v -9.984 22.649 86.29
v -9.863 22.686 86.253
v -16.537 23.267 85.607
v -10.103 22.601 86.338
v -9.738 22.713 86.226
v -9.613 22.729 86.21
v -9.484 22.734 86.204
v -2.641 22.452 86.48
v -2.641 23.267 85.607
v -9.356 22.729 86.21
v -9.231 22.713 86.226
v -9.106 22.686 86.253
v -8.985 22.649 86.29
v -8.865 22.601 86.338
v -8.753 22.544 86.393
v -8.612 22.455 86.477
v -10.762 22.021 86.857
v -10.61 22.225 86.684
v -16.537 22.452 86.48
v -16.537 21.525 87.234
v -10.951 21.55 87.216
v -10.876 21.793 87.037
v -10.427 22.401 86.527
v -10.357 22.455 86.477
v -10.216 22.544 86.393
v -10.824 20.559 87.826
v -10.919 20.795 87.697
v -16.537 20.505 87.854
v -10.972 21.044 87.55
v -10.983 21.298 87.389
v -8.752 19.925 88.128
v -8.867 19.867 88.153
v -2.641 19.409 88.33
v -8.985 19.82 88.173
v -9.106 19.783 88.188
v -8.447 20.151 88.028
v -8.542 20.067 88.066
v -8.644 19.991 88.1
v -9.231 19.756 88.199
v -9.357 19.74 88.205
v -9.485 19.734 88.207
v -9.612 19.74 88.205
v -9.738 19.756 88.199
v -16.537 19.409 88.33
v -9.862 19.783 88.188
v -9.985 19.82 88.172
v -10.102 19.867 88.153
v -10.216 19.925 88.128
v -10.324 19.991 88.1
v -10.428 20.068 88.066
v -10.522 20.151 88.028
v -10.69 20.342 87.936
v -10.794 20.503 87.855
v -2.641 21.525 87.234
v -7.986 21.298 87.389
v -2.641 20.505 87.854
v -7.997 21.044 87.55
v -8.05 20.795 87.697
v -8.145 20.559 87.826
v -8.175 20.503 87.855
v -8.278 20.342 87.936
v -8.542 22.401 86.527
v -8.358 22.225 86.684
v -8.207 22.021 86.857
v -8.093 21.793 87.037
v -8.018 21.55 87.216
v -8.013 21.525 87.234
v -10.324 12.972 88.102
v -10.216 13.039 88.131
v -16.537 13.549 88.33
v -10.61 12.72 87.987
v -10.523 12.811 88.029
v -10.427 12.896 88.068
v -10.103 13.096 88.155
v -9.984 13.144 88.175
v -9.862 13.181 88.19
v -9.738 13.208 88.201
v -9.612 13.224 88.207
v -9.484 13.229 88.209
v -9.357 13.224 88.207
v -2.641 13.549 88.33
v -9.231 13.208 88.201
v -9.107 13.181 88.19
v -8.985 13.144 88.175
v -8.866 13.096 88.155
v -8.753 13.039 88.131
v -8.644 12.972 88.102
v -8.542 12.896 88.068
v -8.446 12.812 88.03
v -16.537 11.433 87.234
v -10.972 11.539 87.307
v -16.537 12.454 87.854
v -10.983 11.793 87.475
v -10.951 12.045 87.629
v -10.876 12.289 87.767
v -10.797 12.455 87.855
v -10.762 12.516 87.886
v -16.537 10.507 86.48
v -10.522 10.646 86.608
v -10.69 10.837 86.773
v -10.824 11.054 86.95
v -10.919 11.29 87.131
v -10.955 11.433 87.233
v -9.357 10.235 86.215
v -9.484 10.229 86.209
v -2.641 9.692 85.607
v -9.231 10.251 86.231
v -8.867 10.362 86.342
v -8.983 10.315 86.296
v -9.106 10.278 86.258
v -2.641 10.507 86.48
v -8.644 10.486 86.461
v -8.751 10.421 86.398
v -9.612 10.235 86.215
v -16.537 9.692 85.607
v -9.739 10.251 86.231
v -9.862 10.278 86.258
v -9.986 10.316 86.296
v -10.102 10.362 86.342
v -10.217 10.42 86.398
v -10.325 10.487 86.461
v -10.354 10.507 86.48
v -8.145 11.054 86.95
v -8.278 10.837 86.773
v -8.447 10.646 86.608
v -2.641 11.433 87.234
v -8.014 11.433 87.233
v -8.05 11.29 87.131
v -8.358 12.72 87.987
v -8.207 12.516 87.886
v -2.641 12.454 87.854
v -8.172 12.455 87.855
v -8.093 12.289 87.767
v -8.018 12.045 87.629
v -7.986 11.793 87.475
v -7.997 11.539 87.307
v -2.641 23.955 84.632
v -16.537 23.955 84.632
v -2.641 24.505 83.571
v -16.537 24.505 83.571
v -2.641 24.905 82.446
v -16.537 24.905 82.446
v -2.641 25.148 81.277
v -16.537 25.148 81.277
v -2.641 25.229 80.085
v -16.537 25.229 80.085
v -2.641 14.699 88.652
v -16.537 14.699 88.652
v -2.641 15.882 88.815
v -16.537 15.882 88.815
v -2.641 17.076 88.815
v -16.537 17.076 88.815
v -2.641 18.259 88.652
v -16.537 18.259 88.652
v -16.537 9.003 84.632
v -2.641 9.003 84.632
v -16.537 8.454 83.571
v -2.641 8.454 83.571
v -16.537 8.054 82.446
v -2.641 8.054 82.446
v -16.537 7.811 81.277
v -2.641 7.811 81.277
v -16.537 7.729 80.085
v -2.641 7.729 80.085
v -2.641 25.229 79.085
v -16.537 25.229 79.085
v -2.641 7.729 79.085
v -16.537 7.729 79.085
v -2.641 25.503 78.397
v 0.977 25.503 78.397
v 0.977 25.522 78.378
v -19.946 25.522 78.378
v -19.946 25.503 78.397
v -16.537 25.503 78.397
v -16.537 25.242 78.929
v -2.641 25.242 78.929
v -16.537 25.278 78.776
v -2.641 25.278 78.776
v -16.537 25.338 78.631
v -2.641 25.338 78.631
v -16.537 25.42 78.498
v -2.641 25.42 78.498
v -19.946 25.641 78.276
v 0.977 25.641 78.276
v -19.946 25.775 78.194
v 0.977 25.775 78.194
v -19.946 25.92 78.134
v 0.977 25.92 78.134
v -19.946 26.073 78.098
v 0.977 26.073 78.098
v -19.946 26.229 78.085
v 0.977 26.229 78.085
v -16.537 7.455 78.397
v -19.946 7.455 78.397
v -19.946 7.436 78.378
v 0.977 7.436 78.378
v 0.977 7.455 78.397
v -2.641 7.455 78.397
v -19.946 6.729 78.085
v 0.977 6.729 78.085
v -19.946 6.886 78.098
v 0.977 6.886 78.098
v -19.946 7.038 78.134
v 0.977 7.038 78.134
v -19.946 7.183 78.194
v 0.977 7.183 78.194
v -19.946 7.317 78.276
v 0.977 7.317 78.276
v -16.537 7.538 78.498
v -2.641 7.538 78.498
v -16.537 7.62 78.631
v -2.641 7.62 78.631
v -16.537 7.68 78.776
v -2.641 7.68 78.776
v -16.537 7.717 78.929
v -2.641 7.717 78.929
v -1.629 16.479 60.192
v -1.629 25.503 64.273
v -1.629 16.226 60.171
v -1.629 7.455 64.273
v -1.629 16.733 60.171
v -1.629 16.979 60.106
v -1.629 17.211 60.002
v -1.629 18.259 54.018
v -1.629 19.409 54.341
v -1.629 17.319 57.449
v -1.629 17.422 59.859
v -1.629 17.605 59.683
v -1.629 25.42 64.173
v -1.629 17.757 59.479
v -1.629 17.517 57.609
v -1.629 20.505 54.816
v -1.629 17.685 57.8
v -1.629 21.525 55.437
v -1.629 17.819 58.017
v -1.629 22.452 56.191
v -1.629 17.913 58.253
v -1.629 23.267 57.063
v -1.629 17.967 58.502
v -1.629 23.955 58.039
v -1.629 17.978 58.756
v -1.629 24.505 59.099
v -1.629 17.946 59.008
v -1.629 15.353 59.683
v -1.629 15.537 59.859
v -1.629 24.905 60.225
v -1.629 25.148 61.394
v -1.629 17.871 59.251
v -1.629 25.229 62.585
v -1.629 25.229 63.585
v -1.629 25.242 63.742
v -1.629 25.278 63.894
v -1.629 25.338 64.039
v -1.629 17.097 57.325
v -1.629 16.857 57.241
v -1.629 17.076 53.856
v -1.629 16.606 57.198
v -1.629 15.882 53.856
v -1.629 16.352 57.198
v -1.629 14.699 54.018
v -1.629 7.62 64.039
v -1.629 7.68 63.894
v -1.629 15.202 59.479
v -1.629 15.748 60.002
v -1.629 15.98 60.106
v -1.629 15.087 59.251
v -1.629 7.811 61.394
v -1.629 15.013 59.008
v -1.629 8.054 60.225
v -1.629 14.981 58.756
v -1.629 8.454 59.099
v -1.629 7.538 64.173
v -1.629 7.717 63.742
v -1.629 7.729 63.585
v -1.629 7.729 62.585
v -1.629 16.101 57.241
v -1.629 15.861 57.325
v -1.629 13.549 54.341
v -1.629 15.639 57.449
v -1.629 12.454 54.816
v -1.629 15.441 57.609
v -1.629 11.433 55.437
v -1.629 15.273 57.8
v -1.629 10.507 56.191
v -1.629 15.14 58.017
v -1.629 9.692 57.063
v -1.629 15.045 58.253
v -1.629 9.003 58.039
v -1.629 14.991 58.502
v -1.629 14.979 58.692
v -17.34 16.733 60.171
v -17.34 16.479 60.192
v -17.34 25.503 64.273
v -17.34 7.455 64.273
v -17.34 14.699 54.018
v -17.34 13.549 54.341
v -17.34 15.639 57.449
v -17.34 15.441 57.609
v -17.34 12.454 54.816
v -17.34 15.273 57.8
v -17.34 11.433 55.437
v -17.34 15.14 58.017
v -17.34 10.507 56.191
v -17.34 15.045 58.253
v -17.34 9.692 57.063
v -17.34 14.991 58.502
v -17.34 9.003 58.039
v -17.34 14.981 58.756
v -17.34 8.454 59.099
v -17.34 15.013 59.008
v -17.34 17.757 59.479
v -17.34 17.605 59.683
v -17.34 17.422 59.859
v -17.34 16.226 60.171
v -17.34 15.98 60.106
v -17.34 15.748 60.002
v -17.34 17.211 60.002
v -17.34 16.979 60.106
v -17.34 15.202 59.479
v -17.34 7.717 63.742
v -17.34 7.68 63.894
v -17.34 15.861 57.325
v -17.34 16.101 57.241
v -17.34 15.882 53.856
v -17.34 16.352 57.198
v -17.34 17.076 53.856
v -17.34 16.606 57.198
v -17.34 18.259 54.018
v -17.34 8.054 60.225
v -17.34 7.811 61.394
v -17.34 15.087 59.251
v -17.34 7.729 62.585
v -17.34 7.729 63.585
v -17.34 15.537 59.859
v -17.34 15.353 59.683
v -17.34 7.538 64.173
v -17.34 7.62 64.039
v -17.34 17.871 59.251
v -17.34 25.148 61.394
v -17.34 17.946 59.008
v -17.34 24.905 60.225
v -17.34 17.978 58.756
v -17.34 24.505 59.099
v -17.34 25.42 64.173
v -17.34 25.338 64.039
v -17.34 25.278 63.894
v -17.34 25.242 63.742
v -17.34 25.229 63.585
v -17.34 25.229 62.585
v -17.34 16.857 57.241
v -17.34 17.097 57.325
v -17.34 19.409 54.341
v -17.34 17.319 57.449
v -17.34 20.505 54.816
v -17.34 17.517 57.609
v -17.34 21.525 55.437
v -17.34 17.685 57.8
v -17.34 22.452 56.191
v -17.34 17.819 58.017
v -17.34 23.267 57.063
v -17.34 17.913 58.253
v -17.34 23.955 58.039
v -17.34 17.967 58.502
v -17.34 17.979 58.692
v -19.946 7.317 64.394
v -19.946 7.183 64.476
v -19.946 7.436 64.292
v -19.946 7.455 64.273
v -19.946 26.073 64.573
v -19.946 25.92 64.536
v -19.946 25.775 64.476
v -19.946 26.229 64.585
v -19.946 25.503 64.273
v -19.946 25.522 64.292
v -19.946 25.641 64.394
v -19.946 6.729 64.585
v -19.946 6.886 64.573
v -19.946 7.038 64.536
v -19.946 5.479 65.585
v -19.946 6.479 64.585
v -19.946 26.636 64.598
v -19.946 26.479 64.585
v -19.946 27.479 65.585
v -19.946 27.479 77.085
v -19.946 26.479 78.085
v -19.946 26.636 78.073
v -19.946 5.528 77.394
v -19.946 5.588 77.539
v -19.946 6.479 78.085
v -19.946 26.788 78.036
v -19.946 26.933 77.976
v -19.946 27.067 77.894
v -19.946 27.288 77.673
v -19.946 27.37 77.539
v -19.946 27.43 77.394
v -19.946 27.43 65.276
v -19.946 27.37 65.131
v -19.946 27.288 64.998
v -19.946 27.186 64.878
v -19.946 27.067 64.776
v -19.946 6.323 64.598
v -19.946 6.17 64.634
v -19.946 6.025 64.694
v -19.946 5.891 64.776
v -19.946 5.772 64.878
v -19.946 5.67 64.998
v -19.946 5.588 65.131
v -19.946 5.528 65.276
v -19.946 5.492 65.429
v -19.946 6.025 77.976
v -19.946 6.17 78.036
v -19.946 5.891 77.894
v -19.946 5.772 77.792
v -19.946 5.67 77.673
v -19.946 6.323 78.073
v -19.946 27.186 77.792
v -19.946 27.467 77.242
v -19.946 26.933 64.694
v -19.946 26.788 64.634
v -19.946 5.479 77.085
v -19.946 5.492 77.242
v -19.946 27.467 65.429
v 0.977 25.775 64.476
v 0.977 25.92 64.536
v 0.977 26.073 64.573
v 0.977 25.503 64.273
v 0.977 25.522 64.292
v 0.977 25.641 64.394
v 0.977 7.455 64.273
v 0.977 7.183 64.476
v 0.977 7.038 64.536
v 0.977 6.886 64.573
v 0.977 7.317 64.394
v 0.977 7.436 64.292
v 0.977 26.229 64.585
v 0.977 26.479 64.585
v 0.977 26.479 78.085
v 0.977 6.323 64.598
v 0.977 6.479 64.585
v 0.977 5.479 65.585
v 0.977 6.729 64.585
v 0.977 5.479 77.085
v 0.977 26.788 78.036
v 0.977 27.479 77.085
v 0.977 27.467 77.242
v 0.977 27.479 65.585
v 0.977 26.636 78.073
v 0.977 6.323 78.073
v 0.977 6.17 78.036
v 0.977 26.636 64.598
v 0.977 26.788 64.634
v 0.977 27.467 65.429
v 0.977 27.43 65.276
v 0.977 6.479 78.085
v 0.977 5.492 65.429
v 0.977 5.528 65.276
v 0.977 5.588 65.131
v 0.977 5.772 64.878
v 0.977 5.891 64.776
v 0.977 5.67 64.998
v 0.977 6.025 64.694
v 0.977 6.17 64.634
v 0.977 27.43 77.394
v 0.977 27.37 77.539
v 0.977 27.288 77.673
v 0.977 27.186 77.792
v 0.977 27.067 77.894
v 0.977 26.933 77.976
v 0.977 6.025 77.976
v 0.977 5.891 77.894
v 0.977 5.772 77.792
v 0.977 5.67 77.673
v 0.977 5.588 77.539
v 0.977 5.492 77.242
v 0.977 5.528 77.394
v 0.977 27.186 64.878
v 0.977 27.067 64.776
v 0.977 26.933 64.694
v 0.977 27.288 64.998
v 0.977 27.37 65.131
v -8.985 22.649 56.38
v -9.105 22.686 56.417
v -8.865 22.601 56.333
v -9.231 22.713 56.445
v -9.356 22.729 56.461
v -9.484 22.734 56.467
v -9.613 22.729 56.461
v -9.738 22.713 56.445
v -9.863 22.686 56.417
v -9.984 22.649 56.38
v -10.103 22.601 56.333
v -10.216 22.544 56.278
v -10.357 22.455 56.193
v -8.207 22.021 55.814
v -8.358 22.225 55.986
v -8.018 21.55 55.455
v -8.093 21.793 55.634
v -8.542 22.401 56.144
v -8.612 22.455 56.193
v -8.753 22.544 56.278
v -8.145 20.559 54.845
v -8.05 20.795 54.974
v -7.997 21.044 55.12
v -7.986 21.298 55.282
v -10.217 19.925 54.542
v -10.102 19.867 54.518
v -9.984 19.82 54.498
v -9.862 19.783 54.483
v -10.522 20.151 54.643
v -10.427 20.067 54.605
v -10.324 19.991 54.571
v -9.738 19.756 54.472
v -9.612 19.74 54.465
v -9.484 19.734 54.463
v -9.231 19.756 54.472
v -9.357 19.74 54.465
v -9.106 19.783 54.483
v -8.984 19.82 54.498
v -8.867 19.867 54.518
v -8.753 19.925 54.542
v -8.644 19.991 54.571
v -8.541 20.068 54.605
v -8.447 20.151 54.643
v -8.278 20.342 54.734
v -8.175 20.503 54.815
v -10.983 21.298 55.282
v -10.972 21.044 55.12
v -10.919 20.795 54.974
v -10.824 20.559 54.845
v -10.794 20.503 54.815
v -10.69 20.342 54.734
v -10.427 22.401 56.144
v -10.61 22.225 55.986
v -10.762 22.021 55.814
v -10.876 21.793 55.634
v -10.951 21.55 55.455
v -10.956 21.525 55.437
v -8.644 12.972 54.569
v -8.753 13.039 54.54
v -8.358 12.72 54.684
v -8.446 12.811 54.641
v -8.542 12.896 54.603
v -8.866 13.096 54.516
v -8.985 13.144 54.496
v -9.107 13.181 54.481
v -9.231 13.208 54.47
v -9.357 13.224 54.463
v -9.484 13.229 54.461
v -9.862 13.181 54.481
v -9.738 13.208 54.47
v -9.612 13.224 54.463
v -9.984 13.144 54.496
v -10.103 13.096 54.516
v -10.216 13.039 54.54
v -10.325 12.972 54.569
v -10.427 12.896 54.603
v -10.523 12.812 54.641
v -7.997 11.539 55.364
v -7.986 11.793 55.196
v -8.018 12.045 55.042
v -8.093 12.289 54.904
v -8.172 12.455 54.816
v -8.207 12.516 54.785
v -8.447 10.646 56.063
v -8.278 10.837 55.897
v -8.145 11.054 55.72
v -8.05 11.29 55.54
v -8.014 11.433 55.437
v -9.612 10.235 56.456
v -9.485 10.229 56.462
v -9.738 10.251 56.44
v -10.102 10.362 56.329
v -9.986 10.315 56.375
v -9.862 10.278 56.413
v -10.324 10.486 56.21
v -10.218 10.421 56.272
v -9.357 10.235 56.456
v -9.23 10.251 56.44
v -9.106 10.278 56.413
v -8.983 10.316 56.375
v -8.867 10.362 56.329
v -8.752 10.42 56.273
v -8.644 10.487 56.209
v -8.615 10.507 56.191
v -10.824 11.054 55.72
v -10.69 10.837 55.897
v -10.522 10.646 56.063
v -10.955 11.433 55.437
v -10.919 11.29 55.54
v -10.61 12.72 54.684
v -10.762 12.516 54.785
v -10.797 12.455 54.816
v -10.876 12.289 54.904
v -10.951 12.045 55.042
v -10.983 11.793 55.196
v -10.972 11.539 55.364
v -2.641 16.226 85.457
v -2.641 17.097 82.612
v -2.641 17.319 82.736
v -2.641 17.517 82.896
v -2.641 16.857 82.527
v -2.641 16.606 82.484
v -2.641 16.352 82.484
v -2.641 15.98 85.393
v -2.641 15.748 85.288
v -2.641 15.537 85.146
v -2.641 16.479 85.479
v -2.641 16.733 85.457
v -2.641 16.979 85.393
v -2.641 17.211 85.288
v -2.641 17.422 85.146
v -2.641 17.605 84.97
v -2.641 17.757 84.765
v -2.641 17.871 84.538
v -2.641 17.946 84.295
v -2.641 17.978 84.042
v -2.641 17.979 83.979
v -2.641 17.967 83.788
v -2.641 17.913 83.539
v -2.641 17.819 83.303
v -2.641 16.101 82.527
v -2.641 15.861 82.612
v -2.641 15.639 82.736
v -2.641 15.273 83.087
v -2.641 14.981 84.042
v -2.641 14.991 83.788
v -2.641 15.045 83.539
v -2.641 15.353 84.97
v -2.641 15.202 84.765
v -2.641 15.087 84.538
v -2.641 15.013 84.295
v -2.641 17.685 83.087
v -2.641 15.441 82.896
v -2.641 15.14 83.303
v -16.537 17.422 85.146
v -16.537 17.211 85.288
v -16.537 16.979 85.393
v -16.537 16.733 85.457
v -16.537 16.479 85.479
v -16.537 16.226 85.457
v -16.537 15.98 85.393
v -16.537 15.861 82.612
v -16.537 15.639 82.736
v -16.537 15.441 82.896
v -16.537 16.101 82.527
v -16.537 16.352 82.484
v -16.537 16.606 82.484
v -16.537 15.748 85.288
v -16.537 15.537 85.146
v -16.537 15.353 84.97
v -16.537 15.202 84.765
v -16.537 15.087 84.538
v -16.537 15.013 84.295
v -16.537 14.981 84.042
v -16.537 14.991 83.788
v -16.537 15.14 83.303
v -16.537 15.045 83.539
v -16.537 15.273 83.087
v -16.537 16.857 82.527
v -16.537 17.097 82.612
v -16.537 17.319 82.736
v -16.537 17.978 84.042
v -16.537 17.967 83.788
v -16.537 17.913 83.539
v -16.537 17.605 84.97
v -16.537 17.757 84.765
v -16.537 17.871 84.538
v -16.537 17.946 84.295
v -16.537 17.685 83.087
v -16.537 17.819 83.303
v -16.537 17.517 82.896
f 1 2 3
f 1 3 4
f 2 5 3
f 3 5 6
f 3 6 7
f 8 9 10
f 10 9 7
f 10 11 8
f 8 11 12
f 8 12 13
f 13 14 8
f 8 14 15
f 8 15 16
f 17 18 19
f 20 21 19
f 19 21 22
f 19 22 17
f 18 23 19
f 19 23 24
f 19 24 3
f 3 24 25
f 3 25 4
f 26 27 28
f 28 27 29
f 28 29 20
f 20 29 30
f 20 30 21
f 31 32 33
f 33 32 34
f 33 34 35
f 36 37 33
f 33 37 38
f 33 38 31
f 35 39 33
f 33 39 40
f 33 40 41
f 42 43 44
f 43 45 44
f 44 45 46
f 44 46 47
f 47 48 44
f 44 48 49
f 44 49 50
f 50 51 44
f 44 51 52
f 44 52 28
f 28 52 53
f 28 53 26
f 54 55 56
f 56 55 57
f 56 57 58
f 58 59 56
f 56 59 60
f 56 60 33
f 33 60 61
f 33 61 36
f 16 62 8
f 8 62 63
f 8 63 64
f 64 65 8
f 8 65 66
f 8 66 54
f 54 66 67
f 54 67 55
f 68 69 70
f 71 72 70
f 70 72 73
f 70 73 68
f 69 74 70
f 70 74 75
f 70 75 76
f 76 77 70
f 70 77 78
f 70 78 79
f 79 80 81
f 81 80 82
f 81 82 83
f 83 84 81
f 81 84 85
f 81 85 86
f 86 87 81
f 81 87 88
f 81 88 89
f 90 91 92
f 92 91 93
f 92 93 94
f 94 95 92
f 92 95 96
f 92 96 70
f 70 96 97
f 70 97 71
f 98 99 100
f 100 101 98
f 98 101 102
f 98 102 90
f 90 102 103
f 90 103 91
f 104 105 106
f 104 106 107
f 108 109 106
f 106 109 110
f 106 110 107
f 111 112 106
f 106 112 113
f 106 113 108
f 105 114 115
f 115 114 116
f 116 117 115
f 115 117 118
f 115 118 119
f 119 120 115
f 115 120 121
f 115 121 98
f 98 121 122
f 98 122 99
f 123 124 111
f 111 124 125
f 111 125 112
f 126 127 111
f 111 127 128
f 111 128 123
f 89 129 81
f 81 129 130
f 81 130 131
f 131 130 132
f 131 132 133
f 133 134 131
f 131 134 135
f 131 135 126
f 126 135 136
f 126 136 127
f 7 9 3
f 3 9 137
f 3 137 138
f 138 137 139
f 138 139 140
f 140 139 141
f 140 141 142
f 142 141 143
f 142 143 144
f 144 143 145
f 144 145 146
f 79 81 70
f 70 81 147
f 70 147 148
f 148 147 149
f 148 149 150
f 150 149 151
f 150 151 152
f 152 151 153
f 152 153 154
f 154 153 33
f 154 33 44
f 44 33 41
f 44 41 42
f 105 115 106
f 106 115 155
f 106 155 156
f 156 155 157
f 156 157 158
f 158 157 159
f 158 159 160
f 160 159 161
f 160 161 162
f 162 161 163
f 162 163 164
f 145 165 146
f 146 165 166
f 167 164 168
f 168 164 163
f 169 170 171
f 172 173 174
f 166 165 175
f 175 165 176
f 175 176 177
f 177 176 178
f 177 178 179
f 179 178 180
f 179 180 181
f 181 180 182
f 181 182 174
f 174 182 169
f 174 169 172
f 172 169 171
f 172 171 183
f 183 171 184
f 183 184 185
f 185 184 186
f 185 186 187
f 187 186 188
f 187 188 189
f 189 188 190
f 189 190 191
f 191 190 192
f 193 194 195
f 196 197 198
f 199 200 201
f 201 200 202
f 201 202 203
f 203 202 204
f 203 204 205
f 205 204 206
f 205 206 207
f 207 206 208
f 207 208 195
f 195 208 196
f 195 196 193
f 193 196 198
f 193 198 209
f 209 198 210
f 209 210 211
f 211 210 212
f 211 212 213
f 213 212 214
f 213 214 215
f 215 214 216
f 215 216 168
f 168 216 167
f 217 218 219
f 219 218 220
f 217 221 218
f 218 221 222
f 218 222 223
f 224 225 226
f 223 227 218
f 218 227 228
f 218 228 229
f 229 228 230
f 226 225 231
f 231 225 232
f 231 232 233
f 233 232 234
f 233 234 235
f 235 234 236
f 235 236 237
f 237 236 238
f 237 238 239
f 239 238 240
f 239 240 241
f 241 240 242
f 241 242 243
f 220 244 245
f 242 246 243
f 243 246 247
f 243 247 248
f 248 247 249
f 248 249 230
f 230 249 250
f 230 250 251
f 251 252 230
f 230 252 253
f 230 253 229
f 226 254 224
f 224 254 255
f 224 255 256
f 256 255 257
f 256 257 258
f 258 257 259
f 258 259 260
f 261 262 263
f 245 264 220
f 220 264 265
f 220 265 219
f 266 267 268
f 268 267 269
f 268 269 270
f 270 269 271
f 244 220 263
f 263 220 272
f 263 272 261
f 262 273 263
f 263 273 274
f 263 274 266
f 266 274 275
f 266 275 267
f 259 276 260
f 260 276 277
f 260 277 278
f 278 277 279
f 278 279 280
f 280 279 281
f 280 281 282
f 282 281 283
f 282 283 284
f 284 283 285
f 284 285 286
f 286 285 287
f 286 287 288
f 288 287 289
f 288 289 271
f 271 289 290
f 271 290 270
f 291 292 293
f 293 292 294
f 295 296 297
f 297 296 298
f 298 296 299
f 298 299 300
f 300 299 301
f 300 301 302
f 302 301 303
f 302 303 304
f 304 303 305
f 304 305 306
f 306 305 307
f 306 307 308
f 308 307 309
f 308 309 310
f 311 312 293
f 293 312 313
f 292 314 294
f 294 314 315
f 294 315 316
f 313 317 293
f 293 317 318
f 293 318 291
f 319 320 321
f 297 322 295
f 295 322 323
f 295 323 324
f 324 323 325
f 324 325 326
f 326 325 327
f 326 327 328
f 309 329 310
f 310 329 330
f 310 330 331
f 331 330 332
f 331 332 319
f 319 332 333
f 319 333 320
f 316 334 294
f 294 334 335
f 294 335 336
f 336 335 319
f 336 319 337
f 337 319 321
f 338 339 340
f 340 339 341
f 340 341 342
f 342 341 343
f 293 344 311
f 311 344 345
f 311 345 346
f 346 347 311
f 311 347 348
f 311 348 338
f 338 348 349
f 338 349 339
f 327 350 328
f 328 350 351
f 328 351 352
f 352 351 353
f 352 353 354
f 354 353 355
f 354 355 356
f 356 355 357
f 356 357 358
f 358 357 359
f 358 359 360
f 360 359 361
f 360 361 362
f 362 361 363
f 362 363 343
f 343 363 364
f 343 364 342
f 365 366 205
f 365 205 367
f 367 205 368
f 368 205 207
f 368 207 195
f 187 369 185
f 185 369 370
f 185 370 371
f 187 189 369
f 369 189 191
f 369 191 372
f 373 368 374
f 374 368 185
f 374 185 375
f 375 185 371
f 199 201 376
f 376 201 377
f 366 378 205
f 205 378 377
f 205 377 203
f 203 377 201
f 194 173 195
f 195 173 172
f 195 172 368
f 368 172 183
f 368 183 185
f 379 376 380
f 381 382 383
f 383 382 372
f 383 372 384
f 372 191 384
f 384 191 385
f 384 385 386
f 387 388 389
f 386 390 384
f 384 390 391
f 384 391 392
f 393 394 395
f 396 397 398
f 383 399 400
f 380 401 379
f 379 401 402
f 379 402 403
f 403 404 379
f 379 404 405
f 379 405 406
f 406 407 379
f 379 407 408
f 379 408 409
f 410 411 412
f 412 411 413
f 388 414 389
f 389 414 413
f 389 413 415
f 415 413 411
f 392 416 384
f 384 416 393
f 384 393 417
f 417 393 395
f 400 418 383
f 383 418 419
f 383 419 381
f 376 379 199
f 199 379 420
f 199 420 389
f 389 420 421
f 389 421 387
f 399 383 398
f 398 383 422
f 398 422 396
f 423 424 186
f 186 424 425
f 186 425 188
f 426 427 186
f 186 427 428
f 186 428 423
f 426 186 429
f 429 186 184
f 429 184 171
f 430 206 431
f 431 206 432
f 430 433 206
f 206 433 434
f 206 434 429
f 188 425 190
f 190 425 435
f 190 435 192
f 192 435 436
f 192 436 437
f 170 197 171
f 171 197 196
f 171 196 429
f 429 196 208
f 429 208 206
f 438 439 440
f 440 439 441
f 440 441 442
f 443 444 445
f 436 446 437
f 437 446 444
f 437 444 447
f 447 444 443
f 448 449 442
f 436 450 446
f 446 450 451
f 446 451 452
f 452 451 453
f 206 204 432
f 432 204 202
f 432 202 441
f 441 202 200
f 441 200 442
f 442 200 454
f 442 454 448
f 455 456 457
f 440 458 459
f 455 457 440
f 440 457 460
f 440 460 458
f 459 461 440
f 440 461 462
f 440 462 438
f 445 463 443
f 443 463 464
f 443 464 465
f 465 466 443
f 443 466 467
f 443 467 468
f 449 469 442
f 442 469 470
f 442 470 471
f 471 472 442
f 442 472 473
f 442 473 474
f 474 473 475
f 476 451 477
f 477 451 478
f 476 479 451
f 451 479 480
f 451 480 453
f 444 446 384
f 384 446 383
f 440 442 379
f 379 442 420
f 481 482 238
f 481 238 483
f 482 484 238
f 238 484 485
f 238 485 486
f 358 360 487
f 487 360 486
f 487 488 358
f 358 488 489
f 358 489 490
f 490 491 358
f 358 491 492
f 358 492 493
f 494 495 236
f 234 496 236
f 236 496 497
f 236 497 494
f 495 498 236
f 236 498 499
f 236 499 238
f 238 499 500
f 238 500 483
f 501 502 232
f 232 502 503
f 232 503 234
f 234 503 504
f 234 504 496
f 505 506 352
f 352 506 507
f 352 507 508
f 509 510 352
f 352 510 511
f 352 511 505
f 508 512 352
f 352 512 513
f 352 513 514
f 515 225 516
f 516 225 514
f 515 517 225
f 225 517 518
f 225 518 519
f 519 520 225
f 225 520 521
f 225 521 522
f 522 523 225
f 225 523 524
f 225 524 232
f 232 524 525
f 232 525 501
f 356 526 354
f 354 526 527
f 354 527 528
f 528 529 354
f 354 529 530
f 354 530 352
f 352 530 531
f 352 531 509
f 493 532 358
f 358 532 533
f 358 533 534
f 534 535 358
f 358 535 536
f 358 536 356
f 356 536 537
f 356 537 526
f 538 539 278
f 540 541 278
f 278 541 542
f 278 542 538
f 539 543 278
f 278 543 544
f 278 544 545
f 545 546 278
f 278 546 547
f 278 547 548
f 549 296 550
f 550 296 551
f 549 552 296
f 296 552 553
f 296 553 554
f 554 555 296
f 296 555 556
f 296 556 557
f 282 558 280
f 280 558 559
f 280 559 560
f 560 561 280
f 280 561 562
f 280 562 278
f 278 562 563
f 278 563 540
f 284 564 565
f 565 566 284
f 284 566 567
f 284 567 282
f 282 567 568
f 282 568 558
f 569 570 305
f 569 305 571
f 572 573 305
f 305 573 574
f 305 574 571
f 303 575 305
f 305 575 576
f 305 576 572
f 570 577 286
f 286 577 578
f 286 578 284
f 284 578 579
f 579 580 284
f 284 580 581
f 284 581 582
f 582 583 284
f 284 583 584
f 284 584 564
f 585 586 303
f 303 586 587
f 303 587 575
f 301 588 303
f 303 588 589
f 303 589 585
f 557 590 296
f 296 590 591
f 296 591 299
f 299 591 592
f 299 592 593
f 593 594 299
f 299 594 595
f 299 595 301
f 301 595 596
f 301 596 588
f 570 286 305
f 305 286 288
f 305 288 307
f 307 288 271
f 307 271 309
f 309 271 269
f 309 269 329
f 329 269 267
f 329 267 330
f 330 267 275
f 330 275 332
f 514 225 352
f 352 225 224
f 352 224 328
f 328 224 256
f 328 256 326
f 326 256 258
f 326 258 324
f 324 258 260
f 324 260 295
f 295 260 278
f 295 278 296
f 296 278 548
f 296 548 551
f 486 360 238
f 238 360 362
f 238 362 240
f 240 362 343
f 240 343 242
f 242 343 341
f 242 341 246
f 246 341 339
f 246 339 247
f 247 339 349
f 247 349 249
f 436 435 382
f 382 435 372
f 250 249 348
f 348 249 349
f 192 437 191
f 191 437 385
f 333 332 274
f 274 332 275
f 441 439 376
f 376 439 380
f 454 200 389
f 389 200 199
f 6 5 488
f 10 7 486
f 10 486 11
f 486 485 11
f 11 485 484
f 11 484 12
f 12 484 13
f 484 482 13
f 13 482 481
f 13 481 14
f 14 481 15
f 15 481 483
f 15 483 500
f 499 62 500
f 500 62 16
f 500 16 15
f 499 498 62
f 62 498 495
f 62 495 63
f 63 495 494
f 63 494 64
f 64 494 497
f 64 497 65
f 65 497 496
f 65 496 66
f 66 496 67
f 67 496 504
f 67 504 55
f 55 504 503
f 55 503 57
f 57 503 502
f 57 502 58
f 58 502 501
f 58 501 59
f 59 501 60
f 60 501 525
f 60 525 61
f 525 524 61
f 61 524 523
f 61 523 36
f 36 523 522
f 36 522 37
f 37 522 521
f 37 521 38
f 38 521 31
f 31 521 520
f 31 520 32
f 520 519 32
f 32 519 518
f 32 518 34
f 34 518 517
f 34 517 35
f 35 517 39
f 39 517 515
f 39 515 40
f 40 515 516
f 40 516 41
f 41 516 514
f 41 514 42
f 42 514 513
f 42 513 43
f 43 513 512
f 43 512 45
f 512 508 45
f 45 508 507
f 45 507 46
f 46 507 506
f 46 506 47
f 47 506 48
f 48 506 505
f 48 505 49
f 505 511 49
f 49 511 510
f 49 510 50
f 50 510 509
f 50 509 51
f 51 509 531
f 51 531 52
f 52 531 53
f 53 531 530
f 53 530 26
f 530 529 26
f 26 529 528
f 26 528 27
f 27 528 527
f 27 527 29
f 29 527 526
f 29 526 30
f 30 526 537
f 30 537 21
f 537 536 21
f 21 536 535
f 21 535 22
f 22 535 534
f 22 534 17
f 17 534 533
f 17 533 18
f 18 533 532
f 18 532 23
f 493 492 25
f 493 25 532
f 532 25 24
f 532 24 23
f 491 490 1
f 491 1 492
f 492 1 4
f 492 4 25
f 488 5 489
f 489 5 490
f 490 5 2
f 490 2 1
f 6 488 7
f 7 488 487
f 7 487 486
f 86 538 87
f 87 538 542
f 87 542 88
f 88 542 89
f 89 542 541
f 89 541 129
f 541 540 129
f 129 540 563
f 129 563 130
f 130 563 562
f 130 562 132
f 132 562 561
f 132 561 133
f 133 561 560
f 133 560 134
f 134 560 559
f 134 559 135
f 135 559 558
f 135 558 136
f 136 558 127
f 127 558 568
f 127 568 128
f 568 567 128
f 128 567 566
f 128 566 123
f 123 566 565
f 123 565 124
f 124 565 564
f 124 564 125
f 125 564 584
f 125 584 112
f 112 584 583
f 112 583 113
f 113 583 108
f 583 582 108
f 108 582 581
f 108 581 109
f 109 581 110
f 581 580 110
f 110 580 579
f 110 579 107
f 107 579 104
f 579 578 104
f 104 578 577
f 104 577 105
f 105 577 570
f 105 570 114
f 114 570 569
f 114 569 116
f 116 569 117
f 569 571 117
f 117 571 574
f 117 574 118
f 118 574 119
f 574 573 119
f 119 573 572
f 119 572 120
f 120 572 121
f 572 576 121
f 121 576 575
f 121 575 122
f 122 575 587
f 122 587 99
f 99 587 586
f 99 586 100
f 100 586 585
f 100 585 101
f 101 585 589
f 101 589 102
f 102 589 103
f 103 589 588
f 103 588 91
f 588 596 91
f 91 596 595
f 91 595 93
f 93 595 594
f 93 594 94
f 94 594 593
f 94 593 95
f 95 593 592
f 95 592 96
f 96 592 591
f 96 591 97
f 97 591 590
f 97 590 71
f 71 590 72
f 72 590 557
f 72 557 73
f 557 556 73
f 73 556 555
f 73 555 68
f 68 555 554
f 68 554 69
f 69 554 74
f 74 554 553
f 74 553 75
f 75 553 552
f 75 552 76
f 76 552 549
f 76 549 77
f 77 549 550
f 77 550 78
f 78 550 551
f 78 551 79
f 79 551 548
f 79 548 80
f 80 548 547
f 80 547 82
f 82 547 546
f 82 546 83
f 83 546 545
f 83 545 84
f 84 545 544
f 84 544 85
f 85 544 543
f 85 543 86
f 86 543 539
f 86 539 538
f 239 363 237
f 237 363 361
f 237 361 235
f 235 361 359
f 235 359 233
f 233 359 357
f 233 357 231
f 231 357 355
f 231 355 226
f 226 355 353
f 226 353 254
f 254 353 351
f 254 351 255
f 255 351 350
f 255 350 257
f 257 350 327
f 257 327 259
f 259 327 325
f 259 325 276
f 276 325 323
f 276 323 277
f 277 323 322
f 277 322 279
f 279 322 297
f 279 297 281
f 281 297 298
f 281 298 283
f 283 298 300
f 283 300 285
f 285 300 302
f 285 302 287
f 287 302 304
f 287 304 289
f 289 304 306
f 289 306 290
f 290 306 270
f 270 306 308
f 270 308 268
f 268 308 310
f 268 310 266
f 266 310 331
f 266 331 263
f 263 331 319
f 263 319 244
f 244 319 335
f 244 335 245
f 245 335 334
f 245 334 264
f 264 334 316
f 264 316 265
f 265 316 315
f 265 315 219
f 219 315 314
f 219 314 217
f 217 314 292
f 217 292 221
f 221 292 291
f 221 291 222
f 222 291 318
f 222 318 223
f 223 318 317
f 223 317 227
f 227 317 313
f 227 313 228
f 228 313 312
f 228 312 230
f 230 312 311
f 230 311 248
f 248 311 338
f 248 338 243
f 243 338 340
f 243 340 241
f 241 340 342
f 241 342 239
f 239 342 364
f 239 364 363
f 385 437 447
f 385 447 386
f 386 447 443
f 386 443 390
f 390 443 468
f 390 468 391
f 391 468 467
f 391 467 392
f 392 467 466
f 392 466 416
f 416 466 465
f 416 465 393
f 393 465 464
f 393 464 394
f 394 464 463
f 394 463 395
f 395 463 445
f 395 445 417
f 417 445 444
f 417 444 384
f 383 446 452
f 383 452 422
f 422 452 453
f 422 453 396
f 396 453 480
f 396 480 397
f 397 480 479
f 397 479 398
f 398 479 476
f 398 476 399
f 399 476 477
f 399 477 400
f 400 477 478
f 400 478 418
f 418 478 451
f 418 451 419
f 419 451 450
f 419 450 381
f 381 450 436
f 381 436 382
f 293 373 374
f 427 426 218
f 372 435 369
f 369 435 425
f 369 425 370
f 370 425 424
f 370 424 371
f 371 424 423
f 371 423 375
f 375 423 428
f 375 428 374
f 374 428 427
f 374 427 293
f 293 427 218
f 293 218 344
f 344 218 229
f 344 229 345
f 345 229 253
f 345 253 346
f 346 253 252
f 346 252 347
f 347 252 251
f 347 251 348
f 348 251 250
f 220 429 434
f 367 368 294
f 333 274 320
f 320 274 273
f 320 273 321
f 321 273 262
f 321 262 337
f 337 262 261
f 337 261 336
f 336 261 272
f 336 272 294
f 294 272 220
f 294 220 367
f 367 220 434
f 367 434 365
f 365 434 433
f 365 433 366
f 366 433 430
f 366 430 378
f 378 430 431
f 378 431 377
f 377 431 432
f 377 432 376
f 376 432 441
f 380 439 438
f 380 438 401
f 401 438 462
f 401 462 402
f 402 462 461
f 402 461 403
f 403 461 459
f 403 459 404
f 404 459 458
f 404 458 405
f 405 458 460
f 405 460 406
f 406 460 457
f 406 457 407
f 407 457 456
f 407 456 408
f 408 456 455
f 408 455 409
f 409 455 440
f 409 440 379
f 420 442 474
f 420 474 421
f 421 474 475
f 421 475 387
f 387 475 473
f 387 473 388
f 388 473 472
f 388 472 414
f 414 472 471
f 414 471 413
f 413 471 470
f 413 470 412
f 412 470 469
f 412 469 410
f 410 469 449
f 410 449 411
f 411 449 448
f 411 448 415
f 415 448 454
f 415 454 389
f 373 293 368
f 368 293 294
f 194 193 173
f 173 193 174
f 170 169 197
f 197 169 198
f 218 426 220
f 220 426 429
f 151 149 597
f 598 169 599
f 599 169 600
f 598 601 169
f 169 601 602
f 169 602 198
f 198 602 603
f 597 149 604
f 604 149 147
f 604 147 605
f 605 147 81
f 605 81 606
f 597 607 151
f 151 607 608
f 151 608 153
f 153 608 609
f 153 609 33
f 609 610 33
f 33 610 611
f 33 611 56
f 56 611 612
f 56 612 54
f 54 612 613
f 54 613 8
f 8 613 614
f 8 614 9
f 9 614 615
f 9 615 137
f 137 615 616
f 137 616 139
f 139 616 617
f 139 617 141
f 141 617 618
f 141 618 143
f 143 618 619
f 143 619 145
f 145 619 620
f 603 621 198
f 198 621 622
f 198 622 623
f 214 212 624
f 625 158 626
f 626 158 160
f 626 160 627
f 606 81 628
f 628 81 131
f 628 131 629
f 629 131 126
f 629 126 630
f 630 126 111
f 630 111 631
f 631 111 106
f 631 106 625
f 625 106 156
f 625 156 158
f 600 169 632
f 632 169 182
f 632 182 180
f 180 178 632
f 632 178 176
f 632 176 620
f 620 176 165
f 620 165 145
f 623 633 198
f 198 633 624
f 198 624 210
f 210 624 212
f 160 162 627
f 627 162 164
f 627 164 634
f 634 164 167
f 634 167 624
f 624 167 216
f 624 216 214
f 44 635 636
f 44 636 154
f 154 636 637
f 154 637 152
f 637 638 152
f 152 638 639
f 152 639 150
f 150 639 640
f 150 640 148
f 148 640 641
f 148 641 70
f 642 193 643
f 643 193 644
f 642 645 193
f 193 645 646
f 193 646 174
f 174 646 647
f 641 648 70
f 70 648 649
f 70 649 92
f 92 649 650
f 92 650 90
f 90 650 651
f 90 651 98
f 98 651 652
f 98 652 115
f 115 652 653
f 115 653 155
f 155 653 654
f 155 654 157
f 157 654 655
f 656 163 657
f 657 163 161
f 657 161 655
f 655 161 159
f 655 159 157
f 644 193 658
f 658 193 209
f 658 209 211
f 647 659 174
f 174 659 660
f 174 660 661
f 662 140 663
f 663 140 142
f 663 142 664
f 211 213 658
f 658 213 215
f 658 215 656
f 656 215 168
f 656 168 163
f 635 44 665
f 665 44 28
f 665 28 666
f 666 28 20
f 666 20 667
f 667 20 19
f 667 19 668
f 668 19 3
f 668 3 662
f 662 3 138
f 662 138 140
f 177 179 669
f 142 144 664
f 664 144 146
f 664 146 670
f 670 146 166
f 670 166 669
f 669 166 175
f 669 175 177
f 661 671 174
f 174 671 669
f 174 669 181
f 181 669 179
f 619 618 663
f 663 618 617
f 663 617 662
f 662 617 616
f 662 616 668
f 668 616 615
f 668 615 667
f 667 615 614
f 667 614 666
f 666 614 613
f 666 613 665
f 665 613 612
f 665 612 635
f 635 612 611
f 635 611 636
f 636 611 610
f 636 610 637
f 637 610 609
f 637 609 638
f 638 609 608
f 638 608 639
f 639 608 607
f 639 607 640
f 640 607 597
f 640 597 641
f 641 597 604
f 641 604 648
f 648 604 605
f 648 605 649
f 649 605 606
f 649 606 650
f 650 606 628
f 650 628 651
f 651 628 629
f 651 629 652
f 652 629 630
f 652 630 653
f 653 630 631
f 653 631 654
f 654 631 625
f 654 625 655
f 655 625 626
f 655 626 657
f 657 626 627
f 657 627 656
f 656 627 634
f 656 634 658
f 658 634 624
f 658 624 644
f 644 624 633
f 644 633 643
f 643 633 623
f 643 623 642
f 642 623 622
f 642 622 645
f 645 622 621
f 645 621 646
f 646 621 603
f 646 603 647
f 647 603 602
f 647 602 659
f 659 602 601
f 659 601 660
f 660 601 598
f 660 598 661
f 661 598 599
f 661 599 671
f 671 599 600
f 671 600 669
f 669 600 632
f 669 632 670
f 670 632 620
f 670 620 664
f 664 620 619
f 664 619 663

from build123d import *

# Parameters (mm, degrees)
SKETCH2_W           = 20.922356035
SKETCH2_H           = 22
BOSS_EXTRUDE1_DEPTH = 35
SKETCH3_R           = 1.5
CUT_EXTRUDE1_DEPTH  = 31
SKETCH7_W           = 2
SKETCH7_H           = 2.25
CUT_EXTRUDE3_DEPTH  = 22
SKETCH8_W           = 2
SKETCH8_H           = 2.25
CUT_EXTRUDE4_DEPTH  = 22
SKETCH11_R          = 1.5
SKETCH11_W          = 2.606017342
SKETCH11_H          = 18.048523845
SKETCH11_W_2        = 2.606017343
CUT_EXTRUDE5_DEPTH  = 36
FILLET2_R           = 1
BOSS_EXTRUDE2_REACH = 95.223
SKETCH12_W          = 2.606017343
SKETCH12_H          = 14.124057788
SKETCH12_W_2        = 2.606017342
CUT_EXTRUDE6_REACH  = 54.468
SKETCH13_W          = 3.309729442
SKETCH13_H          = 19.459110601
SKETCH13_W_2        = 3.249965826
SKETCH13_H_2        = 19.123541834


with BuildPart() as part:
    # Sketch2 → Boss-Extrude1 (new body)
    with BuildSketch(Plane(origin=(0, 0, 53.835350067), x_dir=(-1, 0, 0), z_dir=(0, 0, -1))):
        with Locations((9.484421134, 16.479237668)):
            Rectangle(SKETCH2_W, SKETCH2_H)
    extrude(amount=-BOSS_EXTRUDE1_DEPTH)

    # Sketch3 → Cut-Extrude1 (cut)
    with BuildSketch(Plane.ZY.offset(19.945599152)):
        with Locations((58.692130127, 16.479237668)):
            Circle(SKETCH3_R)
        with Locations((83.978570007, 16.479237668)):
            Circle(SKETCH3_R)
        with BuildLine():
            Line((62.585350067, 25.229237668), (62.585350067, 27.479237668))
            add(Edge.make_bspline(
                [(62.585350067, 5.479237668), (55.503237571, -7.59972181), (27.642884441, 16.75686213), (54.847177094, 35.965561503), (62.585350067, 27.479237668)],
                knots=[0, 0, 0, 0, 0.52323238, 1, 1, 1, 1], degree=3))
            Line((62.585350067, 5.479237668), (62.585350067, 7.729237668))
            ThreePointArc((62.585350067, 7.729237668), (56.398165732, 10.292053333), (53.835350067, 16.479237668))
            ThreePointArc((53.835350067, 16.479237668), (56.398165732, 22.666422004), (62.585350067, 25.229237668))
        make_face()
        with BuildLine():
            Line((80.085350067, 25.229237668), (80.085350067, 27.479237668))
            add(Edge.make_bspline(
                [(80.085350067, 5.479237668), (87.439945262, -7.310081119), (114.923859956, 16.481856124), (87.400752328, 40.475015582), (80.085350067, 27.479237668)],
                knots=[0, 0, 0, 0, 0.498892453, 1, 1, 1, 1], degree=3))
            Line((80.085350067, 5.479237668), (80.085350067, 7.729237668))
            ThreePointArc((80.085350067, 7.729237668), (86.272534402, 10.292053333), (88.835350067, 16.479237668))
            ThreePointArc((88.835350067, 16.479237668), (86.272534402, 22.666422004), (80.085350067, 25.229237668))
        make_face()
    extrude(amount=-CUT_EXTRUDE1_DEPTH, mode=Mode.SUBTRACT)

    # Sketch7 → Cut-Extrude3 (cut)
    with BuildSketch(Plane.ZY.offset(19.945599152)):
        with Locations((63.585350067, 26.354237668)):
            Rectangle(SKETCH7_W, SKETCH7_H)
        with Locations((79.085350067, 26.354237668)):
            Rectangle(SKETCH7_W, SKETCH7_H)
    extrude(amount=-CUT_EXTRUDE3_DEPTH, mode=Mode.SUBTRACT)

    # Sketch8 → Cut-Extrude4 (cut)
    with BuildSketch(Plane.ZY.offset(19.945599152)):
        with Locations((63.585350067, 6.604237668)):
            Rectangle(SKETCH8_W, SKETCH8_H)
        with Locations((79.085350067, 6.604237668)):
            Rectangle(SKETCH8_W, SKETCH8_H)
    extrude(amount=-CUT_EXTRUDE4_DEPTH, mode=Mode.SUBTRACT)

    # Sketch11 → Cut-Extrude5 (cut)
    with BuildSketch(Plane(origin=(0, 0, 53.835350067), x_dir=(-1, 0, 0), z_dir=(0, 0, -1))):
        with Locations(Location((9.484421134, 11.729237668, 0), (0, 0, 90))):
            Circle(SKETCH11_R)
        with Locations(Location((9.484421134, 21.23419775, 0), (0, 0, 90))):
            Circle(SKETCH11_R)
        with Locations((0.326251788, 16.479237669)):
            Rectangle(SKETCH11_W, SKETCH11_H)
        with Locations((18.642590481, 16.479237669)):
            Rectangle(SKETCH11_W_2, SKETCH11_H)
    extrude(amount=-CUT_EXTRUDE5_DEPTH, mode=Mode.SUBTRACT)

    # Fillet2
    fillet2_edges = [part.edges().sort_by_distance(p)[0] for p in [
        (-9.484421134, 27.479237668, 78.085350067),
    ]]
    fillet(fillet2_edges, radius=FILLET2_R)
    fillet2_2_edges = [part.edges().sort_by_distance(p)[0] for p in [
        (-9.484421134, 27.479237668, 64.585350067),
    ]]
    fillet(fillet2_2_edges, radius=FILLET2_R)
    fillet2_3_edges = [part.edges().sort_by_distance(p)[0] for p in [
        (-9.484421134, 7.729237668, 64.585350067),
    ]]
    fillet(fillet2_3_edges, radius=FILLET2_R)
    fillet2_4_edges = [part.edges().sort_by_distance(p)[0] for p in [
        (-9.484421134, 25.229237668, 64.585350067),
    ]]
    fillet(fillet2_4_edges, radius=FILLET2_R)
    fillet2_5_edges = [part.edges().sort_by_distance(p)[0] for p in [
        (-9.484421134, 25.229237668, 78.085350067),
    ]]
    fillet(fillet2_5_edges, radius=FILLET2_R)
    fillet2_6_edges = [part.edges().sort_by_distance(p)[0] for p in [
        (-9.484421134, 7.729237668, 78.085350067),
    ]]
    fillet(fillet2_6_edges, radius=FILLET2_R)
    fillet2_7_edges = [part.edges().sort_by_distance(p)[0] for p in [
        (-9.484421134, 5.479237668, 78.085350067),
    ]]
    fillet(fillet2_7_edges, radius=FILLET2_R)
    fillet2_8_edges = [part.edges().sort_by_distance(p)[0] for p in [
        (-9.484421134, 5.479237668, 64.585350067),
    ]]
    fillet(fillet2_8_edges, radius=FILLET2_R)

    # Boss-Extrude2: up to this face of the body (flat: up to its plane)
    boss_extrude2_end = Plane(part.part.faces().sort_by_distance((-18.642590481, 7.454975746, 71.335350067))[0])
    # Sketch12 → Boss-Extrude2 (add, up to the picked face)
    with BuildSketch(Plane.XZ.offset(-25.503499591), mode=Mode.PRIVATE) as boss_extrude2_sk1:
        with Locations((-18.642590481, 71.335350067)):
            Rectangle(SKETCH12_W, SKETCH12_H)
    boss_extrude2_tool1 = split(extrude(boss_extrude2_sk1.sketch, amount=BOSS_EXTRUDE2_REACH, mode=Mode.PRIVATE), bisect_by=boss_extrude2_end, keep=Keep.BOTH, mode=Mode.PRIVATE)
    # Sketch12 → Boss-Extrude2 (add, up to the picked face)
    with BuildSketch(Plane.XZ.offset(-25.503499591), mode=Mode.PRIVATE) as boss_extrude2_sk2:
        with Locations((-0.326251788, 71.335350067)):
            Rectangle(SKETCH12_W_2, SKETCH12_H)
    boss_extrude2_tool2 = split(extrude(boss_extrude2_sk2.sketch, amount=BOSS_EXTRUDE2_REACH, mode=Mode.PRIVATE), bisect_by=boss_extrude2_end, keep=Keep.BOTH, mode=Mode.PRIVATE)
    add(boss_extrude2_tool1.solids().sort_by(Axis((-18.64259, 25.5035, 71.33535), (0, -1, 0)))[0])
    add(boss_extrude2_tool2.solids().sort_by(Axis((-0.326252, 25.5035, 71.33535), (0, -1, 0)))[0])

    # Cut-Extrude6: up to this face of the body (flat: up to its plane)
    cut_extrude6_end = Plane(part.part.faces().sort_by_distance((-0.326251788, 16.479237668, 78.397378961))[0])
    # Sketch13 → Cut-Extrude6 (cut, up to the picked face)
    with BuildSketch(Plane(origin=(0, 0, 93.835350067), x_dir=(-1, 0, 0), z_dir=(0, 0, -1)), mode=Mode.PRIVATE) as cut_extrude6_sk1:
        with Locations((18.191565455, 16.712143076)):
            Rectangle(SKETCH13_W, SKETCH13_H)
    cut_extrude6_tool1 = split(extrude(cut_extrude6_sk1.sketch, amount=CUT_EXTRUDE6_REACH, mode=Mode.PRIVATE), bisect_by=cut_extrude6_end, keep=Keep.BOTH, mode=Mode.PRIVATE)
    # Sketch13 → Cut-Extrude6 (cut, up to the picked face)
    with BuildSketch(Plane(origin=(0, 0, 93.835350067), x_dir=(-1, 0, 0), z_dir=(0, 0, -1)), mode=Mode.PRIVATE) as cut_extrude6_sk2:
        with Locations((1.015942541, 16.59296095)):
            Rectangle(SKETCH13_W_2, SKETCH13_H_2)
    cut_extrude6_tool2 = split(extrude(cut_extrude6_sk2.sketch, amount=CUT_EXTRUDE6_REACH, mode=Mode.PRIVATE), bisect_by=cut_extrude6_end, keep=Keep.BOTH, mode=Mode.PRIVATE)
    add(cut_extrude6_tool1.solids().sort_by(Axis((-18.191565, 16.712143, 93.83535), (0, 0, -1)))[0], mode=Mode.SUBTRACT)
    add(cut_extrude6_tool2.solids().sort_by(Axis((-1.015943, 16.592961, 93.83535), (0, 0, -1)))[0], mode=Mode.SUBTRACT)


solid = part.part
